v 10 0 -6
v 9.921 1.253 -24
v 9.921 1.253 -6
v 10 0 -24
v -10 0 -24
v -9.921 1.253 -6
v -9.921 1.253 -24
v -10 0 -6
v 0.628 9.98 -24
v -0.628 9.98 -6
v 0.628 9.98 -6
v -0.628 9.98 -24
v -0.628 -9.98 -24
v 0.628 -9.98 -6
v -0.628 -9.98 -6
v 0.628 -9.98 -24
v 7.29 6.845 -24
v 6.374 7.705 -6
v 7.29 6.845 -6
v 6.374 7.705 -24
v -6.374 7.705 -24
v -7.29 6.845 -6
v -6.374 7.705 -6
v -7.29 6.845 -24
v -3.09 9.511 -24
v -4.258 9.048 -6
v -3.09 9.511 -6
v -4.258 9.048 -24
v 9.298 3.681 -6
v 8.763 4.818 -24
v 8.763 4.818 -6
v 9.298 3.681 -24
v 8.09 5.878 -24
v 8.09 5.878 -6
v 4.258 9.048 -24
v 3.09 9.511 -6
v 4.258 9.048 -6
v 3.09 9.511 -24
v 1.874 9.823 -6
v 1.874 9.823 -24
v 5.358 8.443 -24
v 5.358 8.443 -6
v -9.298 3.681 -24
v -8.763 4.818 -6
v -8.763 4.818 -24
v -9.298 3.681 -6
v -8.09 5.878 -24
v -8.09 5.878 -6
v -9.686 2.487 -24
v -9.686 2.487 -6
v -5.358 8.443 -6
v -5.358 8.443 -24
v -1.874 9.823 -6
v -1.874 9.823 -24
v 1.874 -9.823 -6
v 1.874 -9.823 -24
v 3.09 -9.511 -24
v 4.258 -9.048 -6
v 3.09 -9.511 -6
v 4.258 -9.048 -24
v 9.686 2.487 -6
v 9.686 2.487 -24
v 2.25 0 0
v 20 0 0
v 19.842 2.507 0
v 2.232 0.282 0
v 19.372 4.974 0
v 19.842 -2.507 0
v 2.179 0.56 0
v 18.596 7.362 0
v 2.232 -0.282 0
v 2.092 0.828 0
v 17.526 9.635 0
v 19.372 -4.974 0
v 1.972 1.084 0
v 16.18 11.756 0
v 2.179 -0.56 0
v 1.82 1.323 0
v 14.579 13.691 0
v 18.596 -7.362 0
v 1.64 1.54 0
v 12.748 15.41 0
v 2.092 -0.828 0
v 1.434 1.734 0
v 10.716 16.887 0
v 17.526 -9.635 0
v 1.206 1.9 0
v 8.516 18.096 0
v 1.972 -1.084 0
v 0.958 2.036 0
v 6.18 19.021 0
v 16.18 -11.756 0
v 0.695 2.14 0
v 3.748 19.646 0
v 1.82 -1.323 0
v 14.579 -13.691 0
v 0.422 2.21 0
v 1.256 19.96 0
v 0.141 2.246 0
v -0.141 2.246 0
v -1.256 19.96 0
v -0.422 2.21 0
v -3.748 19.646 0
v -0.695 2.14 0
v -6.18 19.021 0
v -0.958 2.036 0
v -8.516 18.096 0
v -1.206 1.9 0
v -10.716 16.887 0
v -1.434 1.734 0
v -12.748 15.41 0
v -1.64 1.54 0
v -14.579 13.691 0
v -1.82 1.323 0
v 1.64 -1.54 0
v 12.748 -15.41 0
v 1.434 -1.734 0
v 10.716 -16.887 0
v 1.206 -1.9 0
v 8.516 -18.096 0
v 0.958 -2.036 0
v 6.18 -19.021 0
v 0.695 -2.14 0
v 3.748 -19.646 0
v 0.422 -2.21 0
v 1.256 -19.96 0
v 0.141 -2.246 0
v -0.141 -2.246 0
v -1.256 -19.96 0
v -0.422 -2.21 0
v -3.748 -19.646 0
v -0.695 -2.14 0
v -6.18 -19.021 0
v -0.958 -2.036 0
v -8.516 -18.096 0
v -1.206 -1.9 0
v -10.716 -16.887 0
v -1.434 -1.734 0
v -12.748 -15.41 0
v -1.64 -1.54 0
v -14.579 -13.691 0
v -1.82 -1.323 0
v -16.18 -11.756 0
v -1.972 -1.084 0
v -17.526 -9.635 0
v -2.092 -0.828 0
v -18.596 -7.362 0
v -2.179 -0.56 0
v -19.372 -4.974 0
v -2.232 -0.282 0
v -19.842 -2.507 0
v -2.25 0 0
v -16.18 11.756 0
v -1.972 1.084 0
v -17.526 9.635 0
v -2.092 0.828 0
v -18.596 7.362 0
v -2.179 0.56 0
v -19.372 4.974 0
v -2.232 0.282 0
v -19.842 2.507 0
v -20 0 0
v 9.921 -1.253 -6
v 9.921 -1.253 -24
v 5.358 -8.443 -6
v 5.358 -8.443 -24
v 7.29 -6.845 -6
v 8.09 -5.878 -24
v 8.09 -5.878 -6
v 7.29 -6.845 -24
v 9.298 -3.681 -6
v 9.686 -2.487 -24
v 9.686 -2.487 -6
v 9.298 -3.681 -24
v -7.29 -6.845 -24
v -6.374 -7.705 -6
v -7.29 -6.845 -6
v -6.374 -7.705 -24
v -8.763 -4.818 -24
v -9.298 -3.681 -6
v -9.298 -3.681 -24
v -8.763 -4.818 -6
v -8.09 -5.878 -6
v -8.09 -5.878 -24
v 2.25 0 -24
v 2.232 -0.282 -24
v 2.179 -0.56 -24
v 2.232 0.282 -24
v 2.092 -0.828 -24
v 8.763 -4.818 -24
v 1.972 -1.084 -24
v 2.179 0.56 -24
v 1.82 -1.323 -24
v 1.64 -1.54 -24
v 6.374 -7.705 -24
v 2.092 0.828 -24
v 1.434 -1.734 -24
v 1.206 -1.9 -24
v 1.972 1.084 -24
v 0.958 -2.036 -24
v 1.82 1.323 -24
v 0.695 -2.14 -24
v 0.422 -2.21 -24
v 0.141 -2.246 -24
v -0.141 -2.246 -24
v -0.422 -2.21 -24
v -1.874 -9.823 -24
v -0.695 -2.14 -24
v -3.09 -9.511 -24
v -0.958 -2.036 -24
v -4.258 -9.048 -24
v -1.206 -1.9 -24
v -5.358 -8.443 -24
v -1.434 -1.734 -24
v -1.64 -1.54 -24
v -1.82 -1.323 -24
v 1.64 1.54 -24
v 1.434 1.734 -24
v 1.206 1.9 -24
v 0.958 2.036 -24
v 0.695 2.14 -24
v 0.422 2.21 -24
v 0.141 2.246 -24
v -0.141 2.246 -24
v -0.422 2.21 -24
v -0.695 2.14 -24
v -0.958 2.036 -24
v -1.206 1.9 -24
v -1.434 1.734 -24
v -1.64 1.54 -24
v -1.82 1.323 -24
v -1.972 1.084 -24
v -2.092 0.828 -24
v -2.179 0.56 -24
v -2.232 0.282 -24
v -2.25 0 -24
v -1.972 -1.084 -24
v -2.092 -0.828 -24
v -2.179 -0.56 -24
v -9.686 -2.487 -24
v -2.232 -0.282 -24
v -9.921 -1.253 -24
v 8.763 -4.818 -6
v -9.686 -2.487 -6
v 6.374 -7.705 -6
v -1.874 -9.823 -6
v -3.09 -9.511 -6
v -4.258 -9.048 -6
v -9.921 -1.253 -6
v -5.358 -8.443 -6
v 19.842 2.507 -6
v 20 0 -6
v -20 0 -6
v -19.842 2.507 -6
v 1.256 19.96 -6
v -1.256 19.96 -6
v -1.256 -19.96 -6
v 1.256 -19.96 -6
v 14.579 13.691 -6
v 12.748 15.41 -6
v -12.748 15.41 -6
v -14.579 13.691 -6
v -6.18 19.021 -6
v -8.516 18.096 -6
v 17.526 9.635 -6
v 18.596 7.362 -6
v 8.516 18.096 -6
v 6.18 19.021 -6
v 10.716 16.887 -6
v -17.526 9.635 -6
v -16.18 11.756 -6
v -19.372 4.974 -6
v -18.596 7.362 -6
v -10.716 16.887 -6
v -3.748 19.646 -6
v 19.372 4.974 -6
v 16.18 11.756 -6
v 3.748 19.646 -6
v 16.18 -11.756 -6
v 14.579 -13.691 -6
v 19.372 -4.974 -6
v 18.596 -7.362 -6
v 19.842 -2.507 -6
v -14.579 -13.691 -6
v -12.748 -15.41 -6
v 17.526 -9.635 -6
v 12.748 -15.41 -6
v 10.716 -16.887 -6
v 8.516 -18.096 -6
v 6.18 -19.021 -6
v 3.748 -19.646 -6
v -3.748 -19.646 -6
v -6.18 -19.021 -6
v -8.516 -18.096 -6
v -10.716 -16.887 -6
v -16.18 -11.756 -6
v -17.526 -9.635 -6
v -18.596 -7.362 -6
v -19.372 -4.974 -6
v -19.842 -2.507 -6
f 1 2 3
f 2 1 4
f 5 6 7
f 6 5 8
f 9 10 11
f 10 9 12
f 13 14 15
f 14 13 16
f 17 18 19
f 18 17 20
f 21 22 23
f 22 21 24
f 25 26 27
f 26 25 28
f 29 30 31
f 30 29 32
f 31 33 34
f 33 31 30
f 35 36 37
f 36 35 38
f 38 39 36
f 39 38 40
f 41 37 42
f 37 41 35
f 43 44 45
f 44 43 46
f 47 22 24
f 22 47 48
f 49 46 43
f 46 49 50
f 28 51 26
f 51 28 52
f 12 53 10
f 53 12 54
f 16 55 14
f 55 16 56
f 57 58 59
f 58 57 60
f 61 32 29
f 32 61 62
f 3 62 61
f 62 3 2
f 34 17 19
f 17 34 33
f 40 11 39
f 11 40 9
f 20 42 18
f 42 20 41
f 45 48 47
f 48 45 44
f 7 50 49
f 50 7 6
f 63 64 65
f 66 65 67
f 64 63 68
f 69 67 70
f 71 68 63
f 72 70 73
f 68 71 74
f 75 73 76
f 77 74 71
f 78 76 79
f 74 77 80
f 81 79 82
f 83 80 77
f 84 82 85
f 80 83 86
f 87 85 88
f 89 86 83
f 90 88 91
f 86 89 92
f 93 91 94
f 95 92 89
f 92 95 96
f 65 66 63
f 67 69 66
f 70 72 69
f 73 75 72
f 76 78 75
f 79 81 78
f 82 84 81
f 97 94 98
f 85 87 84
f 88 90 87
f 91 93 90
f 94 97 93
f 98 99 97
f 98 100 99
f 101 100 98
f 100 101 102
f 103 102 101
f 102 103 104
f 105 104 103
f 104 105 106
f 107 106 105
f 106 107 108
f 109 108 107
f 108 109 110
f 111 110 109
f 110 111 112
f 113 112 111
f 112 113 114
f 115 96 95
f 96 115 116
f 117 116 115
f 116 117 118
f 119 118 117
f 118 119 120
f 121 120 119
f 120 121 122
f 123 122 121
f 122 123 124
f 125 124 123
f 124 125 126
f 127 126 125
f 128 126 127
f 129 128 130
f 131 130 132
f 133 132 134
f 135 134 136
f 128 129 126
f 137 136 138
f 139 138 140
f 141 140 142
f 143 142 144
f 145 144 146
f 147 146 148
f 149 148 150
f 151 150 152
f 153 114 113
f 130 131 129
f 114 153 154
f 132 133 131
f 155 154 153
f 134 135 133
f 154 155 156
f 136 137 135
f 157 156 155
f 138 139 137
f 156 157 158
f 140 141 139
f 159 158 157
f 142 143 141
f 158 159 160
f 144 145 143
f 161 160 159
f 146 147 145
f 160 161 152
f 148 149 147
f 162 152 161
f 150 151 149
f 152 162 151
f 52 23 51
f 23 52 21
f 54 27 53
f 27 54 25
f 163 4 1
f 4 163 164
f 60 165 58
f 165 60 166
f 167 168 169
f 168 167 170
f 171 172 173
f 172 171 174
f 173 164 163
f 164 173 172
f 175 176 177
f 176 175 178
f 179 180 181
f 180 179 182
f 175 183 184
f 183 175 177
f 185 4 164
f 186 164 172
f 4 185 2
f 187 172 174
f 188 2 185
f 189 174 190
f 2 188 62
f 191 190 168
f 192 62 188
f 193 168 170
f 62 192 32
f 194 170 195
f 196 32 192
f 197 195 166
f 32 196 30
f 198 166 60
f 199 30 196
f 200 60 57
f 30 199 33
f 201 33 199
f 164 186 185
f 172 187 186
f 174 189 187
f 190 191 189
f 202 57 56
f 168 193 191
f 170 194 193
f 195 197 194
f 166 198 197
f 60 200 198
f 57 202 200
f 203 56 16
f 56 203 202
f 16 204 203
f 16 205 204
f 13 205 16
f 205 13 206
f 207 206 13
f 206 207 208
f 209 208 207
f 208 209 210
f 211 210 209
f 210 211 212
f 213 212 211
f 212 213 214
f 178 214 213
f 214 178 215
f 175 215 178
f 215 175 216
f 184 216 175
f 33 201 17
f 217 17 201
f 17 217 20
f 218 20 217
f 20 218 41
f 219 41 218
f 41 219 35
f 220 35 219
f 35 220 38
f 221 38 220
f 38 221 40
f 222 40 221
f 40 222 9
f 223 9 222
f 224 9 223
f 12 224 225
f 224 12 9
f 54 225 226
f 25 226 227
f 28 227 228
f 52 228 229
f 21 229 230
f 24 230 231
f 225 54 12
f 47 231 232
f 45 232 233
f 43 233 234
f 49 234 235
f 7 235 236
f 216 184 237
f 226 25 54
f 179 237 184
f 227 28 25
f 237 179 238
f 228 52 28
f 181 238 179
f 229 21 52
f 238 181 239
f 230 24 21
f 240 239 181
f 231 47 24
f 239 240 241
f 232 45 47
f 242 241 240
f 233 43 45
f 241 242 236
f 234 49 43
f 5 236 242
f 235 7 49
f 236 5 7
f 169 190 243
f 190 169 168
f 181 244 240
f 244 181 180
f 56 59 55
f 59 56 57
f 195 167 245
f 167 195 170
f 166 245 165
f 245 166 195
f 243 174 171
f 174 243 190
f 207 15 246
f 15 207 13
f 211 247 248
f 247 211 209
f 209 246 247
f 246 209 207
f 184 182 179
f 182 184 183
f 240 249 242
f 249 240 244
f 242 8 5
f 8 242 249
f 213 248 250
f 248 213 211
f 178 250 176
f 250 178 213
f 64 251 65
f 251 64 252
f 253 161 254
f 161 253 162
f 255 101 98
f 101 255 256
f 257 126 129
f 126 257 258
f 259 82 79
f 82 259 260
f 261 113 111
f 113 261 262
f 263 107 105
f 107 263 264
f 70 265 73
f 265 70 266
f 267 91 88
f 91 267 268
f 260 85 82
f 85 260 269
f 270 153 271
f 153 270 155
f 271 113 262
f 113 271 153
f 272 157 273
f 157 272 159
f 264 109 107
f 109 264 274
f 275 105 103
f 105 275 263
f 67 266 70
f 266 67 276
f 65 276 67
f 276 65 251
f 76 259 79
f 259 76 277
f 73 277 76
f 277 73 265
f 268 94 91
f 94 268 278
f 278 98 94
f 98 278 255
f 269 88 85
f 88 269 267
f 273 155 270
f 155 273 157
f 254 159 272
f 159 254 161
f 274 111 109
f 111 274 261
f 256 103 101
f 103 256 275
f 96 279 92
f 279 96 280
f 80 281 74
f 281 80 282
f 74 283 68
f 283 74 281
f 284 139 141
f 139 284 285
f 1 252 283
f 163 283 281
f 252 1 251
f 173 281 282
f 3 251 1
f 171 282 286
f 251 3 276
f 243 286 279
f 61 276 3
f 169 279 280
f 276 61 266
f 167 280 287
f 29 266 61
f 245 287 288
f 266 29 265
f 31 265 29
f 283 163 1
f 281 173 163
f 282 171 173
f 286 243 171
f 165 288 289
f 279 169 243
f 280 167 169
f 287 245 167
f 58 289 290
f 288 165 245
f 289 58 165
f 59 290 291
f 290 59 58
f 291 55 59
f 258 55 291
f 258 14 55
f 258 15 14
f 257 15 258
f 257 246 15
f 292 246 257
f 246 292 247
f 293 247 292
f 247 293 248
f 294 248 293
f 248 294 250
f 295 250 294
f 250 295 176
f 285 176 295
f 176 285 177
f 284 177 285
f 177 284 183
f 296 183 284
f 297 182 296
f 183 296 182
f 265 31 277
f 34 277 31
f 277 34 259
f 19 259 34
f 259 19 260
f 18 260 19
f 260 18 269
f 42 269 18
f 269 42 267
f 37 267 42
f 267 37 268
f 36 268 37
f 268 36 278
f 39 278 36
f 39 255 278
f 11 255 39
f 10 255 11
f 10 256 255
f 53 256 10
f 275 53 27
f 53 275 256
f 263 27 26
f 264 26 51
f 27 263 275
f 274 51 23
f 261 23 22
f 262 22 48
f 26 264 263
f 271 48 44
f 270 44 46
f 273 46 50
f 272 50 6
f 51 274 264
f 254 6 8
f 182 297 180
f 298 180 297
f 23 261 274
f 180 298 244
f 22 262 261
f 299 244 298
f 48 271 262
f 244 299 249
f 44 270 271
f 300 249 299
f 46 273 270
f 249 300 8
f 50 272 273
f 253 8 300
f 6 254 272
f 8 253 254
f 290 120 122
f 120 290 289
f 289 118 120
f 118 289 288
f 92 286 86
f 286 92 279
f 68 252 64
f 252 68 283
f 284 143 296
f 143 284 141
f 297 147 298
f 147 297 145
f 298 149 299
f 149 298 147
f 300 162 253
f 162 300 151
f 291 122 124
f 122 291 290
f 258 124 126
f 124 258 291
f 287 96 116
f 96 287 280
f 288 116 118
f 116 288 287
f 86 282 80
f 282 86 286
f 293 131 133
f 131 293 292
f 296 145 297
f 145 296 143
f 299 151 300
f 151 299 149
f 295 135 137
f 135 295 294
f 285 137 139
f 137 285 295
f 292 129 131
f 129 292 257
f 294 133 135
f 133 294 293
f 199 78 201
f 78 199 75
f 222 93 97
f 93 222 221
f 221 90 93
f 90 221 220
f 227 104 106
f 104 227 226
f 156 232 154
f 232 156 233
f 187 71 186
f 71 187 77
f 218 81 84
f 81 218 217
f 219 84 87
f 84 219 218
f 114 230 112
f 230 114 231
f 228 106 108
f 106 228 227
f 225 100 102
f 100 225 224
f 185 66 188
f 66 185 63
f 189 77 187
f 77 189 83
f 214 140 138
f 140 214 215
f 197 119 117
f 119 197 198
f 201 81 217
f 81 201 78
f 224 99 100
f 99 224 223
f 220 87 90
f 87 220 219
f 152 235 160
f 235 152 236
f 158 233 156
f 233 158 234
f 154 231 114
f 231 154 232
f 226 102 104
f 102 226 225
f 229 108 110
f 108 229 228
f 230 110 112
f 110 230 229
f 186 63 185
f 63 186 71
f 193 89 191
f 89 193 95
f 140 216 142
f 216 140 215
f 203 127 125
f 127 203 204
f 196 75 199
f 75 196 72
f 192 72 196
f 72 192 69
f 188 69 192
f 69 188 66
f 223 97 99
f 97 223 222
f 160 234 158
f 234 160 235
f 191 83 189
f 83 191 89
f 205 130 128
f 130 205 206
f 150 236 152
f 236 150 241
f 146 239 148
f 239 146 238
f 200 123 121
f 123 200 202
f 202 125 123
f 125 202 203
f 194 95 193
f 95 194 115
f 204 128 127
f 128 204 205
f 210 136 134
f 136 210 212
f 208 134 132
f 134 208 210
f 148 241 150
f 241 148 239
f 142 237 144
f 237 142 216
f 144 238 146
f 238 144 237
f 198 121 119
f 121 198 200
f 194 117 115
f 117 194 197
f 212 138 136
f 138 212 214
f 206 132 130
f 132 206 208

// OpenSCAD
$fn = 50;


difference() {
	union() {
		translate(v = [0, 0, -24.0000000000]) {
			cylinder(h = 24, r = 10.0000000000);
		}
		translate(v = [0, 0, -6.0000000000]) {
			cylinder(h = 6, r = 20.0000000000);
		}
	}
	union() {
		#translate(v = [0, 0, -24]) {
			cylinder(h = 24, r = 2.2500000000);
		}
	}
}
